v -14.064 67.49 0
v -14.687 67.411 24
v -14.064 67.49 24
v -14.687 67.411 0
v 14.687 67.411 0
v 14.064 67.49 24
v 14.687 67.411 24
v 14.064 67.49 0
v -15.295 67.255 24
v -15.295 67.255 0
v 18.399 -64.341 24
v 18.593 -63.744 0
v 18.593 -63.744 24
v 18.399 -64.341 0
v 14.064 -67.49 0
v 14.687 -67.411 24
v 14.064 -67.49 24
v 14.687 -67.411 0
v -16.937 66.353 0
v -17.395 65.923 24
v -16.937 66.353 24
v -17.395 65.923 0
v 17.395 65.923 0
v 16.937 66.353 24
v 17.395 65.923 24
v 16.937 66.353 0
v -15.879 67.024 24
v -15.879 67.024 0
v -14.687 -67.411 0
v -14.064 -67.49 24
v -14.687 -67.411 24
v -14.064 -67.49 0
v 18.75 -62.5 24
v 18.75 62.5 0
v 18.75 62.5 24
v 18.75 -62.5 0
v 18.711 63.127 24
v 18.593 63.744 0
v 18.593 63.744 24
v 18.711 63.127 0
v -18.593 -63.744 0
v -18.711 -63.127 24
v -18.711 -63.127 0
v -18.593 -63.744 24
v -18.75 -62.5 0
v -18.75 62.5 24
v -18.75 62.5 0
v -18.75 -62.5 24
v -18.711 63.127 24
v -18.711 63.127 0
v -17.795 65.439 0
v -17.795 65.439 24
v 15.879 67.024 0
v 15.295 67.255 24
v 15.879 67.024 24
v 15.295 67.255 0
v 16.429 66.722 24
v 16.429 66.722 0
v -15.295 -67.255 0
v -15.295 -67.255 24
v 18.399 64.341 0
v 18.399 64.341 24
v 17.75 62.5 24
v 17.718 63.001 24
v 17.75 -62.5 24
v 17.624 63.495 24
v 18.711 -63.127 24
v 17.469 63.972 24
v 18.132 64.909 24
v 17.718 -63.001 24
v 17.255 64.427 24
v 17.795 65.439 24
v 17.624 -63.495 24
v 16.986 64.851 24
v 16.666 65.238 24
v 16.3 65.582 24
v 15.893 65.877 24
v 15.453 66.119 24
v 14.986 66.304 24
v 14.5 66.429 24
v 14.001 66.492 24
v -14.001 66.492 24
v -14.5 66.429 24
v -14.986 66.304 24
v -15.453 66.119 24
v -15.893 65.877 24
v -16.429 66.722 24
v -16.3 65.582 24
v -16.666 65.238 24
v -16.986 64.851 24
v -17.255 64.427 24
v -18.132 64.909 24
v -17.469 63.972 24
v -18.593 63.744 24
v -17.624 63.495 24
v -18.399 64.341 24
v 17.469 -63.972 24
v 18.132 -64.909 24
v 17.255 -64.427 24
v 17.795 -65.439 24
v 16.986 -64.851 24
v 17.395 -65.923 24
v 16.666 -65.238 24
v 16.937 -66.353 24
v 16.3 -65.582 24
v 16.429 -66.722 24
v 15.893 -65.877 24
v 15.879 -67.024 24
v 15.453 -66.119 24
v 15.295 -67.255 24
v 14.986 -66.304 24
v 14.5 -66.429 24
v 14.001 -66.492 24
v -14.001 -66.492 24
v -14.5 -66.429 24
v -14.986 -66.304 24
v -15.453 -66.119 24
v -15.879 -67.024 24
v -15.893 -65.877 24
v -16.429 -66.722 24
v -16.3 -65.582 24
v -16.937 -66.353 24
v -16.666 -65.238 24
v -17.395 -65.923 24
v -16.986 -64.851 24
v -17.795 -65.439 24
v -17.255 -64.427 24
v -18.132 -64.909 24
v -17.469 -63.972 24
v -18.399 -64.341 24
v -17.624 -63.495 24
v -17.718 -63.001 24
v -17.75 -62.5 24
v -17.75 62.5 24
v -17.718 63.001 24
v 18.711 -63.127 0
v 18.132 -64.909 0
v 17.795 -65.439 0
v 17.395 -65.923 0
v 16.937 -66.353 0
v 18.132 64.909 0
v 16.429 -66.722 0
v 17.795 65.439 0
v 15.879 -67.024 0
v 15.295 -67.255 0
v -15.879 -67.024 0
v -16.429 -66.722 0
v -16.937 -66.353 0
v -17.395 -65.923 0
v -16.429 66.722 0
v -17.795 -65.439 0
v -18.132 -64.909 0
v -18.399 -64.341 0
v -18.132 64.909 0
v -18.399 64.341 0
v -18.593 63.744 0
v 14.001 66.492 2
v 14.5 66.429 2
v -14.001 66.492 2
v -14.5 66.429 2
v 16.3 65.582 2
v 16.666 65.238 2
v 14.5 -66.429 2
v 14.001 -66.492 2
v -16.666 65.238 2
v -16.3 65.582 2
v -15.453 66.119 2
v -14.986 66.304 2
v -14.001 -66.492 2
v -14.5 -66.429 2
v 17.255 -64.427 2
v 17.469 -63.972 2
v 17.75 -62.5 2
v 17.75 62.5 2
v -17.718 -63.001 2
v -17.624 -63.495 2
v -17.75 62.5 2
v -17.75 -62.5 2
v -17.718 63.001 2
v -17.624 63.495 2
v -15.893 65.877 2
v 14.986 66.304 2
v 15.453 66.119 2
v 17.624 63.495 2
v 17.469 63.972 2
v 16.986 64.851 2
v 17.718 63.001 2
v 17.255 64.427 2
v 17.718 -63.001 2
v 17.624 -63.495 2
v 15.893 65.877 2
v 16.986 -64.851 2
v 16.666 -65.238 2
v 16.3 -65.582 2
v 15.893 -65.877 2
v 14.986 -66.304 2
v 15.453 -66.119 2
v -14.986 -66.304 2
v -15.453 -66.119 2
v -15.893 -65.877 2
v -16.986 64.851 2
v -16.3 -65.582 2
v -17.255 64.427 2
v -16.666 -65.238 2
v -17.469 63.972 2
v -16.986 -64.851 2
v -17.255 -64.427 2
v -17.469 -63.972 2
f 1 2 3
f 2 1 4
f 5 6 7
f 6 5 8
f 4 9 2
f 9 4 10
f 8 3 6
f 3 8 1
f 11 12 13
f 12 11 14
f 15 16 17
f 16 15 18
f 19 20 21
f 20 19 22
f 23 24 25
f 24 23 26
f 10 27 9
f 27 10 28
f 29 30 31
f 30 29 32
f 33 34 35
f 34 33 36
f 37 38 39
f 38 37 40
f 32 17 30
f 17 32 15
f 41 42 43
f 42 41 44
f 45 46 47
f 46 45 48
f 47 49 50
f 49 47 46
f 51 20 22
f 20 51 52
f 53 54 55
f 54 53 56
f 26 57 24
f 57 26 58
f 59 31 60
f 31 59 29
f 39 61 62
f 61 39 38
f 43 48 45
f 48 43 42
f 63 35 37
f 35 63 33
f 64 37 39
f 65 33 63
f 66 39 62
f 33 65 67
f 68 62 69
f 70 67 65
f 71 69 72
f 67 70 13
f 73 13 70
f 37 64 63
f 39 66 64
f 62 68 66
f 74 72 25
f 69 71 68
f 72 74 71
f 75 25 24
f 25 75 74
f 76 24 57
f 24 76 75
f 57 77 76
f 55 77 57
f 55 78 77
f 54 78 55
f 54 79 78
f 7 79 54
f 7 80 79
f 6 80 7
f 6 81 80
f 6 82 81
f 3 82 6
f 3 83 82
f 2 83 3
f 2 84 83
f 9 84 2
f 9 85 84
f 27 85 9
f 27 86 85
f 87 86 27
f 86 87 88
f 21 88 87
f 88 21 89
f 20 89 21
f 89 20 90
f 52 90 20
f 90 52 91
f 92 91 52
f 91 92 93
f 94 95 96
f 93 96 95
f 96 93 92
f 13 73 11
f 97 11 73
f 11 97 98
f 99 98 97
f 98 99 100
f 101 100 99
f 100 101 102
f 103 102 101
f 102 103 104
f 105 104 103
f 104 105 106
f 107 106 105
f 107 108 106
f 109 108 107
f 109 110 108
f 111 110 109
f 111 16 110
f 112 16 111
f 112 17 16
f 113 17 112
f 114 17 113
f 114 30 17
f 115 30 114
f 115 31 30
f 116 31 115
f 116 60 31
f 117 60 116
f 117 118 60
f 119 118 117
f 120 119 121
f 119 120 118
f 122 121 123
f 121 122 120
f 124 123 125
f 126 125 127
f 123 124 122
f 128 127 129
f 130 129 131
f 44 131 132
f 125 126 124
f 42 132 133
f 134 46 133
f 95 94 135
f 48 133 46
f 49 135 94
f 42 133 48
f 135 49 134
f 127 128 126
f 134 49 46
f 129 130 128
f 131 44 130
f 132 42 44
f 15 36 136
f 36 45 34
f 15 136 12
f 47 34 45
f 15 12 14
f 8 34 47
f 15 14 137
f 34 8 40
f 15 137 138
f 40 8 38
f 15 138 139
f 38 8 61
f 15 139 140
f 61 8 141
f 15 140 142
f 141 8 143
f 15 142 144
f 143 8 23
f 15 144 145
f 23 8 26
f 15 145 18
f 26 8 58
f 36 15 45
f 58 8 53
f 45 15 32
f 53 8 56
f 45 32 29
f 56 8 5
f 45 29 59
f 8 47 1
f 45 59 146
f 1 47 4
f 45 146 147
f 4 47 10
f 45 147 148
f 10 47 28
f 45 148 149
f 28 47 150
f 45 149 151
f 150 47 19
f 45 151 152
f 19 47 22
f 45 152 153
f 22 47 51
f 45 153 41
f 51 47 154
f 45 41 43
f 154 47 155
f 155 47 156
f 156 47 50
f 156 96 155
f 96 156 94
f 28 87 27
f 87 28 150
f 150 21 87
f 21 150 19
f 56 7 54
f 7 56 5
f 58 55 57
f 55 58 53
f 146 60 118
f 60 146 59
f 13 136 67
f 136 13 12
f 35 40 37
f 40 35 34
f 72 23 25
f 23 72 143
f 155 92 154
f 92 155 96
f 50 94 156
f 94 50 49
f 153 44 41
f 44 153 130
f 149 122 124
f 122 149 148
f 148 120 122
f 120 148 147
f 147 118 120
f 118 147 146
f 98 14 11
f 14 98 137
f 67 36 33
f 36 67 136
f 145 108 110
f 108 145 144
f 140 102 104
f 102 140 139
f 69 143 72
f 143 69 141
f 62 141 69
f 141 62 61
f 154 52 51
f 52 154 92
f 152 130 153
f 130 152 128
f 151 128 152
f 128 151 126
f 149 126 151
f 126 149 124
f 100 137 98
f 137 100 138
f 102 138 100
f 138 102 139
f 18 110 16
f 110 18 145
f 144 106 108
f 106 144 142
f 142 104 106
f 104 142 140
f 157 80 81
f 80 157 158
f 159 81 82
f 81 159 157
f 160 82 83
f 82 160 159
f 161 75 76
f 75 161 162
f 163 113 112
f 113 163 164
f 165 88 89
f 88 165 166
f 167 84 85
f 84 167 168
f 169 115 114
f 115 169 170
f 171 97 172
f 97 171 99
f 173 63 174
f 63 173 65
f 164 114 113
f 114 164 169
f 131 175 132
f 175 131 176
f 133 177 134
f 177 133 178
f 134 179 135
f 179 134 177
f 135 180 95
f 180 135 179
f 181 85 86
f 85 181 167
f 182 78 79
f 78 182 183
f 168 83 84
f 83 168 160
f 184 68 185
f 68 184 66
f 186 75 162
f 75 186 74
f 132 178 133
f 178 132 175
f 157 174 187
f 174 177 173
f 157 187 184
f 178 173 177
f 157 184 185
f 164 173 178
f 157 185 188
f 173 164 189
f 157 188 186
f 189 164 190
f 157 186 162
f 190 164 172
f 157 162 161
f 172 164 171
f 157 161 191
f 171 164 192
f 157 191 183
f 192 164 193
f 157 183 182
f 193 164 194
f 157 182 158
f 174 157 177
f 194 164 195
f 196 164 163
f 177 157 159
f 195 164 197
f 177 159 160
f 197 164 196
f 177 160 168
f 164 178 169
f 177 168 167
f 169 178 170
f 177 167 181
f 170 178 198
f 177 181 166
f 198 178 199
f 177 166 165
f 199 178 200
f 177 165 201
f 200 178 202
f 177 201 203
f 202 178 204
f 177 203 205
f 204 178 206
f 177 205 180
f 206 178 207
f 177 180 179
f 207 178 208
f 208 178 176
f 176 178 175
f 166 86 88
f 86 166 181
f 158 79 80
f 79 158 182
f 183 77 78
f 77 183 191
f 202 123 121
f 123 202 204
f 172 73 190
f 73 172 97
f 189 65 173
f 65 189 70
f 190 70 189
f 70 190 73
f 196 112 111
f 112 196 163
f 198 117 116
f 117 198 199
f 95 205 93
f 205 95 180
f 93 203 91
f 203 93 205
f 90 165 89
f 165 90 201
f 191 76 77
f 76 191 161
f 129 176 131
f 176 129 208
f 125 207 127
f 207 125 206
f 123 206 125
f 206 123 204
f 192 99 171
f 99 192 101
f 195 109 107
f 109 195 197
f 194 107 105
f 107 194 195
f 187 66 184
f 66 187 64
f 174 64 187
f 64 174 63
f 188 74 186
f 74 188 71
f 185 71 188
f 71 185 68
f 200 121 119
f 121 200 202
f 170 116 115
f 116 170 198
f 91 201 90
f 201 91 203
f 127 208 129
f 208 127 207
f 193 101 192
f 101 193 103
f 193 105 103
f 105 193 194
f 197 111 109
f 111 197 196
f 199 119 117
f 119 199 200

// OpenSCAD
$fn = 50;


difference() {
	union() {
		hull() {
			translate(v = [-13.7500000000, 62.5000000000, 0]) {
				cylinder(h = 24, r = 5);
			}
			translate(v = [13.7500000000, 62.5000000000, 0]) {
				cylinder(h = 24, r = 5);
			}
			translate(v = [-13.7500000000, -62.5000000000, 0]) {
				cylinder(h = 24, r = 5);
			}
			translate(v = [13.7500000000, -62.5000000000, 0]) {
				cylinder(h = 24, r = 5);
			}
		}
	}
	union() {
		translate(v = [0, 0, 2]) {
			hull() {
				translate(v = [-13.7500000000, 62.5000000000, 0]) {
					cylinder(h = 22, r = 4);
				}
				translate(v = [13.7500000000, 62.5000000000, 0]) {
					cylinder(h = 22, r = 4);
				}
				translate(v = [-13.7500000000, -62.5000000000, 0]) {
					cylinder(h = 22, r = 4);
				}
				translate(v = [13.7500000000, -62.5000000000, 0]) {
					cylinder(h = 22, r = 4);
				}
			}
		}
	}
}
